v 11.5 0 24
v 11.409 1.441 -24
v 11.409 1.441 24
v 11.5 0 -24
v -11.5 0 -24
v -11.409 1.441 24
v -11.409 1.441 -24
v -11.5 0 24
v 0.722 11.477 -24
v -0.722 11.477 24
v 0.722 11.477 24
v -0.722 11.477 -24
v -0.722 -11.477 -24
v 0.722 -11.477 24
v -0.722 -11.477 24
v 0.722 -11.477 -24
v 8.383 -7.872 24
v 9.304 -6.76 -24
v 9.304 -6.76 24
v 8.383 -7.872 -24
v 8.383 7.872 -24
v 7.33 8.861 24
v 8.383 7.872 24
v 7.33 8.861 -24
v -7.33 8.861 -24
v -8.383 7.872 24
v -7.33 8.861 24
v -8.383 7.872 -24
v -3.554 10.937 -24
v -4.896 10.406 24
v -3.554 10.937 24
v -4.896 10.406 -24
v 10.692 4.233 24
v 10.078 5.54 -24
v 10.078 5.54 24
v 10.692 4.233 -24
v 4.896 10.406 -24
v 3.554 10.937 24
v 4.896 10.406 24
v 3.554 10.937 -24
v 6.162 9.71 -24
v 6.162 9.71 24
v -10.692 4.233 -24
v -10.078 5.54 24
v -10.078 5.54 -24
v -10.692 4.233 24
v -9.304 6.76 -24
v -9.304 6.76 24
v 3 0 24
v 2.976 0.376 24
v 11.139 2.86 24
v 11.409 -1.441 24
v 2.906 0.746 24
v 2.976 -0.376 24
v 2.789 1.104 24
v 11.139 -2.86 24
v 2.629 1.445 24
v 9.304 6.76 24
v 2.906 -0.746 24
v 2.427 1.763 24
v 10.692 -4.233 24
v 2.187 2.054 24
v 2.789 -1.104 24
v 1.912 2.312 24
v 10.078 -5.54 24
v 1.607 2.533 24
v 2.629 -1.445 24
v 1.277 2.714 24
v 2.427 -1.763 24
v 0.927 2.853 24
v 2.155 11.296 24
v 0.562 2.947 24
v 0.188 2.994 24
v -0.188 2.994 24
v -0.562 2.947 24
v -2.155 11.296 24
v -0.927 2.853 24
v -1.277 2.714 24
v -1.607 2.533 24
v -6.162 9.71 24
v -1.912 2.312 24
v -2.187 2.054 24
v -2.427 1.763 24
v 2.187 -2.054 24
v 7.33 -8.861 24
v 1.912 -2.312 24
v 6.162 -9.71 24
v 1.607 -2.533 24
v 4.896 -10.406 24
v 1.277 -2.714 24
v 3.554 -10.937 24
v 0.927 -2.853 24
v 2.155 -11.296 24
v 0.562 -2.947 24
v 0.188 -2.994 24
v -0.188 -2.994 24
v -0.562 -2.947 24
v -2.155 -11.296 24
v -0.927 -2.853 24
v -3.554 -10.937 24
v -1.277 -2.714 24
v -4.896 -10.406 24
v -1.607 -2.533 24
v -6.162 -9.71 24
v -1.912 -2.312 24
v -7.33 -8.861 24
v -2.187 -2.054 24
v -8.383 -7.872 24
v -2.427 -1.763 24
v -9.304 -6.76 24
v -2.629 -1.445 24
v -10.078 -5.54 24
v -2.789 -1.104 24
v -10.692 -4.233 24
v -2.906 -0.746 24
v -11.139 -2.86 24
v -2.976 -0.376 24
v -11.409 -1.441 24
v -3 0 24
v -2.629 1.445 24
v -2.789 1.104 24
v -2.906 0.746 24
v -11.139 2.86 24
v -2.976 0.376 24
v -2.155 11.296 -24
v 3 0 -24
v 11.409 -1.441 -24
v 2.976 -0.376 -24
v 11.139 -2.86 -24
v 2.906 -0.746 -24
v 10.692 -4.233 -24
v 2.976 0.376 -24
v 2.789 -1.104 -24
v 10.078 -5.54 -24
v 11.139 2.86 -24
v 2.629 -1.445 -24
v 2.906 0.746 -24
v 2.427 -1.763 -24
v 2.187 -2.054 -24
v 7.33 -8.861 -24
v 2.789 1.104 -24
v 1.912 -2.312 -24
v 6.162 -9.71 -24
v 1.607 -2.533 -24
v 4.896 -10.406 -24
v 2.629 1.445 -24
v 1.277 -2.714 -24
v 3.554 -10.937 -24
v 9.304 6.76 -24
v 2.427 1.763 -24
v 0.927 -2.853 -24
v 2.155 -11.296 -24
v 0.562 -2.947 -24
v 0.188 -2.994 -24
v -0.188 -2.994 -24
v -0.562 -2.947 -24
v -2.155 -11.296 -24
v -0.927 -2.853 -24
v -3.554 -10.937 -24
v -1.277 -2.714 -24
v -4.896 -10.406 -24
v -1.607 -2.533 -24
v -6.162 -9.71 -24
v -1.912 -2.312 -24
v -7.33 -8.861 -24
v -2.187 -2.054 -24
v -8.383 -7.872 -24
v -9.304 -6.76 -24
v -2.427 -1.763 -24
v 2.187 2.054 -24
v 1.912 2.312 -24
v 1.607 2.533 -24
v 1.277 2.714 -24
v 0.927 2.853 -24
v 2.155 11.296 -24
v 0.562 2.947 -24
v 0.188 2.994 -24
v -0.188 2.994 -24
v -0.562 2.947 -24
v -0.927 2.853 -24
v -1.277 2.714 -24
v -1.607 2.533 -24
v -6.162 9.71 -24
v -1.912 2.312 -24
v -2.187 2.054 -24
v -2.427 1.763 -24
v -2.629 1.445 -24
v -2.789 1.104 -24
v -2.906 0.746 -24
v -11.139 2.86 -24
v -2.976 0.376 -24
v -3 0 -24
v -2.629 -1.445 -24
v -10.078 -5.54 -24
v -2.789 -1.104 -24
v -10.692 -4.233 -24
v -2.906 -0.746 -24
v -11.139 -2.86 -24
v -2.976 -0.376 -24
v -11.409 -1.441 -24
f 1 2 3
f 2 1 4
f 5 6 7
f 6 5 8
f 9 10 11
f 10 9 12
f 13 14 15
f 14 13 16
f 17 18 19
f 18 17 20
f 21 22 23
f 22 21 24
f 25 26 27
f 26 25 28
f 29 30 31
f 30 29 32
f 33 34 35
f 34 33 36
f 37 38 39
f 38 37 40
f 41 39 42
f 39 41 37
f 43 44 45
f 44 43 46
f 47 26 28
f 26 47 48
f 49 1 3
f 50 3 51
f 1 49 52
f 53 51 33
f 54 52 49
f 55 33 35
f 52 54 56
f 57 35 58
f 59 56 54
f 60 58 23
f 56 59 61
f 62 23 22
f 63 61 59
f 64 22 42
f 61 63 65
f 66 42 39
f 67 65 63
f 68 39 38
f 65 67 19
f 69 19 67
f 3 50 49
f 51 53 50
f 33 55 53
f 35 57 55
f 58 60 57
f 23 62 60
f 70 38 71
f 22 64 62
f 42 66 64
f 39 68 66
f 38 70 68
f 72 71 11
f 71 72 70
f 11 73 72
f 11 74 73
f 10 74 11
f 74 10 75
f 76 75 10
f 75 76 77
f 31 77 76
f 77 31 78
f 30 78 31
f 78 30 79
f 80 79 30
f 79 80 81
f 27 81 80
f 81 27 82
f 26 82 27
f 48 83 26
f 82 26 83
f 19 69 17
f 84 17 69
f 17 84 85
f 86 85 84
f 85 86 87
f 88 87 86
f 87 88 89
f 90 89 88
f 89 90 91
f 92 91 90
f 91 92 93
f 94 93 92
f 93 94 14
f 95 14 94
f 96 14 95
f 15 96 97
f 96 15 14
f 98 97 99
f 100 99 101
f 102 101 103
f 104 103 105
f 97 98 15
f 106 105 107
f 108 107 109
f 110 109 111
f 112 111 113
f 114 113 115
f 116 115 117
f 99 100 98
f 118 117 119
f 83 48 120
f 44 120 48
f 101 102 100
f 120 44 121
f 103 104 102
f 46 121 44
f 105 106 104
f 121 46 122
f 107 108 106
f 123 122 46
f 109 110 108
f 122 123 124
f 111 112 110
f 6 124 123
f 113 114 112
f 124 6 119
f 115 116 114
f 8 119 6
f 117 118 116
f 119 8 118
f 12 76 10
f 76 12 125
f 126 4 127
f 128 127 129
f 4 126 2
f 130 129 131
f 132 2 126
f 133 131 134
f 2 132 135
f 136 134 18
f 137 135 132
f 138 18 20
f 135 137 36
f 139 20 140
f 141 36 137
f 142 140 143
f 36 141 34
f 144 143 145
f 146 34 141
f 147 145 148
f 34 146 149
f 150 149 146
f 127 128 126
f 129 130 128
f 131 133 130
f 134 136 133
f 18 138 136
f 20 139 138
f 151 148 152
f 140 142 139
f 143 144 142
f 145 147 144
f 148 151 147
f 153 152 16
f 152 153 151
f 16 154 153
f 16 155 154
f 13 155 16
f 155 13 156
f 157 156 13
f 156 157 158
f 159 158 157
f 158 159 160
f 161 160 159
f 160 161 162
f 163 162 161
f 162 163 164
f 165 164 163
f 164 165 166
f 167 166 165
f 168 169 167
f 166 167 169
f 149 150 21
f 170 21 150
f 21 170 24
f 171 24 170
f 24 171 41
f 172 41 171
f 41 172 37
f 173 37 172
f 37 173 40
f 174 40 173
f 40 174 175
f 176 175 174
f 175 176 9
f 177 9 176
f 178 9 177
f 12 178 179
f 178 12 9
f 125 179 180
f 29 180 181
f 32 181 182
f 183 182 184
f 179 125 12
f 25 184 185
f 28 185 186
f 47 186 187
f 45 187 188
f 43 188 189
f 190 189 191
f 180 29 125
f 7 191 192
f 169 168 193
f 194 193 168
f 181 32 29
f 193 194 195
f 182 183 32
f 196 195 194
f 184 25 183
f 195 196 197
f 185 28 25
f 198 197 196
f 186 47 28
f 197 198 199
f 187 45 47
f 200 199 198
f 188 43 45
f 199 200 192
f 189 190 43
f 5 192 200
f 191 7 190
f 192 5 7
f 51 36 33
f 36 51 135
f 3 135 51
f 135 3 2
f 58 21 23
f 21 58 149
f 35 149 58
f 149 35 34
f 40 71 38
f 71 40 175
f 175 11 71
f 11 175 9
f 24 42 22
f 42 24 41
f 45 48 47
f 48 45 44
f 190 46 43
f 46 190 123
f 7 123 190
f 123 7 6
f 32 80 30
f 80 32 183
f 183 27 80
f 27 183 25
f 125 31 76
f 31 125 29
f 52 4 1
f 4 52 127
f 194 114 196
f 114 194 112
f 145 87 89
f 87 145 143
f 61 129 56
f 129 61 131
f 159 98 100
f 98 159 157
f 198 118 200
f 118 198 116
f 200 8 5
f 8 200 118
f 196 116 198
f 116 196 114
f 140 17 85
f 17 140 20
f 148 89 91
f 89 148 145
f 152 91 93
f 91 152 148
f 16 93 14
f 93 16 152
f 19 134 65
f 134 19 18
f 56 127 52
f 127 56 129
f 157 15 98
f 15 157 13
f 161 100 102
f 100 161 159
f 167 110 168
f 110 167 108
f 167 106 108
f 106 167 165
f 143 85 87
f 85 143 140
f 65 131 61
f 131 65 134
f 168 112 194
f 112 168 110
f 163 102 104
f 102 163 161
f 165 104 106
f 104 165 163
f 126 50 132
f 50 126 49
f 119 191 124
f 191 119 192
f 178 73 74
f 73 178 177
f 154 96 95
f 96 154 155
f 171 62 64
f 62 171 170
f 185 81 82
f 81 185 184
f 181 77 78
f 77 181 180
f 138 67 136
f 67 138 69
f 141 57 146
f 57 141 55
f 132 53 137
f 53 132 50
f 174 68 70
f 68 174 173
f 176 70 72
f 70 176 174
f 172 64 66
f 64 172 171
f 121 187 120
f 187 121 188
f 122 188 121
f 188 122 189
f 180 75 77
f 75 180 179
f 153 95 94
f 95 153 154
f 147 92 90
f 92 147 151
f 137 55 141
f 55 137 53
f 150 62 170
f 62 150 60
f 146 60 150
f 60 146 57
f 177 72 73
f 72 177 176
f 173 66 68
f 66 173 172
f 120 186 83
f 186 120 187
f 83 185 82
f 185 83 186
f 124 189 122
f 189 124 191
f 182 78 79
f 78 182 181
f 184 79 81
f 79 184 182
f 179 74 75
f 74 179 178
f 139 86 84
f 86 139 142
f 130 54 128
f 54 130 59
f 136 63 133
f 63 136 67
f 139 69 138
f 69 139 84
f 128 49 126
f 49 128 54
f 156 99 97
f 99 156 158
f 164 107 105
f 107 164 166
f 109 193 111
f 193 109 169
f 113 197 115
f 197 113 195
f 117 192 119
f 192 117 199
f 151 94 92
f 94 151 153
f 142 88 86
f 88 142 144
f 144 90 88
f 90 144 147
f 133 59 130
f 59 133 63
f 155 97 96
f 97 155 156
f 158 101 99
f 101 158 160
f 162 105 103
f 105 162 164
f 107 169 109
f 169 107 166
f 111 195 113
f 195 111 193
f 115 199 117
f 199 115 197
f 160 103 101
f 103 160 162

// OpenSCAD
$fn = 50;


difference() {
	union() {
		translate(v = [0, 0, -24.0000000000]) {
			cylinder(h = 48, r = 11.5000000000);
		}
	}
	union() {
		translate(v = [0, 0, -100.0000000000]) {
			cylinder(h = 200, r = 3);
		}
	}
}
